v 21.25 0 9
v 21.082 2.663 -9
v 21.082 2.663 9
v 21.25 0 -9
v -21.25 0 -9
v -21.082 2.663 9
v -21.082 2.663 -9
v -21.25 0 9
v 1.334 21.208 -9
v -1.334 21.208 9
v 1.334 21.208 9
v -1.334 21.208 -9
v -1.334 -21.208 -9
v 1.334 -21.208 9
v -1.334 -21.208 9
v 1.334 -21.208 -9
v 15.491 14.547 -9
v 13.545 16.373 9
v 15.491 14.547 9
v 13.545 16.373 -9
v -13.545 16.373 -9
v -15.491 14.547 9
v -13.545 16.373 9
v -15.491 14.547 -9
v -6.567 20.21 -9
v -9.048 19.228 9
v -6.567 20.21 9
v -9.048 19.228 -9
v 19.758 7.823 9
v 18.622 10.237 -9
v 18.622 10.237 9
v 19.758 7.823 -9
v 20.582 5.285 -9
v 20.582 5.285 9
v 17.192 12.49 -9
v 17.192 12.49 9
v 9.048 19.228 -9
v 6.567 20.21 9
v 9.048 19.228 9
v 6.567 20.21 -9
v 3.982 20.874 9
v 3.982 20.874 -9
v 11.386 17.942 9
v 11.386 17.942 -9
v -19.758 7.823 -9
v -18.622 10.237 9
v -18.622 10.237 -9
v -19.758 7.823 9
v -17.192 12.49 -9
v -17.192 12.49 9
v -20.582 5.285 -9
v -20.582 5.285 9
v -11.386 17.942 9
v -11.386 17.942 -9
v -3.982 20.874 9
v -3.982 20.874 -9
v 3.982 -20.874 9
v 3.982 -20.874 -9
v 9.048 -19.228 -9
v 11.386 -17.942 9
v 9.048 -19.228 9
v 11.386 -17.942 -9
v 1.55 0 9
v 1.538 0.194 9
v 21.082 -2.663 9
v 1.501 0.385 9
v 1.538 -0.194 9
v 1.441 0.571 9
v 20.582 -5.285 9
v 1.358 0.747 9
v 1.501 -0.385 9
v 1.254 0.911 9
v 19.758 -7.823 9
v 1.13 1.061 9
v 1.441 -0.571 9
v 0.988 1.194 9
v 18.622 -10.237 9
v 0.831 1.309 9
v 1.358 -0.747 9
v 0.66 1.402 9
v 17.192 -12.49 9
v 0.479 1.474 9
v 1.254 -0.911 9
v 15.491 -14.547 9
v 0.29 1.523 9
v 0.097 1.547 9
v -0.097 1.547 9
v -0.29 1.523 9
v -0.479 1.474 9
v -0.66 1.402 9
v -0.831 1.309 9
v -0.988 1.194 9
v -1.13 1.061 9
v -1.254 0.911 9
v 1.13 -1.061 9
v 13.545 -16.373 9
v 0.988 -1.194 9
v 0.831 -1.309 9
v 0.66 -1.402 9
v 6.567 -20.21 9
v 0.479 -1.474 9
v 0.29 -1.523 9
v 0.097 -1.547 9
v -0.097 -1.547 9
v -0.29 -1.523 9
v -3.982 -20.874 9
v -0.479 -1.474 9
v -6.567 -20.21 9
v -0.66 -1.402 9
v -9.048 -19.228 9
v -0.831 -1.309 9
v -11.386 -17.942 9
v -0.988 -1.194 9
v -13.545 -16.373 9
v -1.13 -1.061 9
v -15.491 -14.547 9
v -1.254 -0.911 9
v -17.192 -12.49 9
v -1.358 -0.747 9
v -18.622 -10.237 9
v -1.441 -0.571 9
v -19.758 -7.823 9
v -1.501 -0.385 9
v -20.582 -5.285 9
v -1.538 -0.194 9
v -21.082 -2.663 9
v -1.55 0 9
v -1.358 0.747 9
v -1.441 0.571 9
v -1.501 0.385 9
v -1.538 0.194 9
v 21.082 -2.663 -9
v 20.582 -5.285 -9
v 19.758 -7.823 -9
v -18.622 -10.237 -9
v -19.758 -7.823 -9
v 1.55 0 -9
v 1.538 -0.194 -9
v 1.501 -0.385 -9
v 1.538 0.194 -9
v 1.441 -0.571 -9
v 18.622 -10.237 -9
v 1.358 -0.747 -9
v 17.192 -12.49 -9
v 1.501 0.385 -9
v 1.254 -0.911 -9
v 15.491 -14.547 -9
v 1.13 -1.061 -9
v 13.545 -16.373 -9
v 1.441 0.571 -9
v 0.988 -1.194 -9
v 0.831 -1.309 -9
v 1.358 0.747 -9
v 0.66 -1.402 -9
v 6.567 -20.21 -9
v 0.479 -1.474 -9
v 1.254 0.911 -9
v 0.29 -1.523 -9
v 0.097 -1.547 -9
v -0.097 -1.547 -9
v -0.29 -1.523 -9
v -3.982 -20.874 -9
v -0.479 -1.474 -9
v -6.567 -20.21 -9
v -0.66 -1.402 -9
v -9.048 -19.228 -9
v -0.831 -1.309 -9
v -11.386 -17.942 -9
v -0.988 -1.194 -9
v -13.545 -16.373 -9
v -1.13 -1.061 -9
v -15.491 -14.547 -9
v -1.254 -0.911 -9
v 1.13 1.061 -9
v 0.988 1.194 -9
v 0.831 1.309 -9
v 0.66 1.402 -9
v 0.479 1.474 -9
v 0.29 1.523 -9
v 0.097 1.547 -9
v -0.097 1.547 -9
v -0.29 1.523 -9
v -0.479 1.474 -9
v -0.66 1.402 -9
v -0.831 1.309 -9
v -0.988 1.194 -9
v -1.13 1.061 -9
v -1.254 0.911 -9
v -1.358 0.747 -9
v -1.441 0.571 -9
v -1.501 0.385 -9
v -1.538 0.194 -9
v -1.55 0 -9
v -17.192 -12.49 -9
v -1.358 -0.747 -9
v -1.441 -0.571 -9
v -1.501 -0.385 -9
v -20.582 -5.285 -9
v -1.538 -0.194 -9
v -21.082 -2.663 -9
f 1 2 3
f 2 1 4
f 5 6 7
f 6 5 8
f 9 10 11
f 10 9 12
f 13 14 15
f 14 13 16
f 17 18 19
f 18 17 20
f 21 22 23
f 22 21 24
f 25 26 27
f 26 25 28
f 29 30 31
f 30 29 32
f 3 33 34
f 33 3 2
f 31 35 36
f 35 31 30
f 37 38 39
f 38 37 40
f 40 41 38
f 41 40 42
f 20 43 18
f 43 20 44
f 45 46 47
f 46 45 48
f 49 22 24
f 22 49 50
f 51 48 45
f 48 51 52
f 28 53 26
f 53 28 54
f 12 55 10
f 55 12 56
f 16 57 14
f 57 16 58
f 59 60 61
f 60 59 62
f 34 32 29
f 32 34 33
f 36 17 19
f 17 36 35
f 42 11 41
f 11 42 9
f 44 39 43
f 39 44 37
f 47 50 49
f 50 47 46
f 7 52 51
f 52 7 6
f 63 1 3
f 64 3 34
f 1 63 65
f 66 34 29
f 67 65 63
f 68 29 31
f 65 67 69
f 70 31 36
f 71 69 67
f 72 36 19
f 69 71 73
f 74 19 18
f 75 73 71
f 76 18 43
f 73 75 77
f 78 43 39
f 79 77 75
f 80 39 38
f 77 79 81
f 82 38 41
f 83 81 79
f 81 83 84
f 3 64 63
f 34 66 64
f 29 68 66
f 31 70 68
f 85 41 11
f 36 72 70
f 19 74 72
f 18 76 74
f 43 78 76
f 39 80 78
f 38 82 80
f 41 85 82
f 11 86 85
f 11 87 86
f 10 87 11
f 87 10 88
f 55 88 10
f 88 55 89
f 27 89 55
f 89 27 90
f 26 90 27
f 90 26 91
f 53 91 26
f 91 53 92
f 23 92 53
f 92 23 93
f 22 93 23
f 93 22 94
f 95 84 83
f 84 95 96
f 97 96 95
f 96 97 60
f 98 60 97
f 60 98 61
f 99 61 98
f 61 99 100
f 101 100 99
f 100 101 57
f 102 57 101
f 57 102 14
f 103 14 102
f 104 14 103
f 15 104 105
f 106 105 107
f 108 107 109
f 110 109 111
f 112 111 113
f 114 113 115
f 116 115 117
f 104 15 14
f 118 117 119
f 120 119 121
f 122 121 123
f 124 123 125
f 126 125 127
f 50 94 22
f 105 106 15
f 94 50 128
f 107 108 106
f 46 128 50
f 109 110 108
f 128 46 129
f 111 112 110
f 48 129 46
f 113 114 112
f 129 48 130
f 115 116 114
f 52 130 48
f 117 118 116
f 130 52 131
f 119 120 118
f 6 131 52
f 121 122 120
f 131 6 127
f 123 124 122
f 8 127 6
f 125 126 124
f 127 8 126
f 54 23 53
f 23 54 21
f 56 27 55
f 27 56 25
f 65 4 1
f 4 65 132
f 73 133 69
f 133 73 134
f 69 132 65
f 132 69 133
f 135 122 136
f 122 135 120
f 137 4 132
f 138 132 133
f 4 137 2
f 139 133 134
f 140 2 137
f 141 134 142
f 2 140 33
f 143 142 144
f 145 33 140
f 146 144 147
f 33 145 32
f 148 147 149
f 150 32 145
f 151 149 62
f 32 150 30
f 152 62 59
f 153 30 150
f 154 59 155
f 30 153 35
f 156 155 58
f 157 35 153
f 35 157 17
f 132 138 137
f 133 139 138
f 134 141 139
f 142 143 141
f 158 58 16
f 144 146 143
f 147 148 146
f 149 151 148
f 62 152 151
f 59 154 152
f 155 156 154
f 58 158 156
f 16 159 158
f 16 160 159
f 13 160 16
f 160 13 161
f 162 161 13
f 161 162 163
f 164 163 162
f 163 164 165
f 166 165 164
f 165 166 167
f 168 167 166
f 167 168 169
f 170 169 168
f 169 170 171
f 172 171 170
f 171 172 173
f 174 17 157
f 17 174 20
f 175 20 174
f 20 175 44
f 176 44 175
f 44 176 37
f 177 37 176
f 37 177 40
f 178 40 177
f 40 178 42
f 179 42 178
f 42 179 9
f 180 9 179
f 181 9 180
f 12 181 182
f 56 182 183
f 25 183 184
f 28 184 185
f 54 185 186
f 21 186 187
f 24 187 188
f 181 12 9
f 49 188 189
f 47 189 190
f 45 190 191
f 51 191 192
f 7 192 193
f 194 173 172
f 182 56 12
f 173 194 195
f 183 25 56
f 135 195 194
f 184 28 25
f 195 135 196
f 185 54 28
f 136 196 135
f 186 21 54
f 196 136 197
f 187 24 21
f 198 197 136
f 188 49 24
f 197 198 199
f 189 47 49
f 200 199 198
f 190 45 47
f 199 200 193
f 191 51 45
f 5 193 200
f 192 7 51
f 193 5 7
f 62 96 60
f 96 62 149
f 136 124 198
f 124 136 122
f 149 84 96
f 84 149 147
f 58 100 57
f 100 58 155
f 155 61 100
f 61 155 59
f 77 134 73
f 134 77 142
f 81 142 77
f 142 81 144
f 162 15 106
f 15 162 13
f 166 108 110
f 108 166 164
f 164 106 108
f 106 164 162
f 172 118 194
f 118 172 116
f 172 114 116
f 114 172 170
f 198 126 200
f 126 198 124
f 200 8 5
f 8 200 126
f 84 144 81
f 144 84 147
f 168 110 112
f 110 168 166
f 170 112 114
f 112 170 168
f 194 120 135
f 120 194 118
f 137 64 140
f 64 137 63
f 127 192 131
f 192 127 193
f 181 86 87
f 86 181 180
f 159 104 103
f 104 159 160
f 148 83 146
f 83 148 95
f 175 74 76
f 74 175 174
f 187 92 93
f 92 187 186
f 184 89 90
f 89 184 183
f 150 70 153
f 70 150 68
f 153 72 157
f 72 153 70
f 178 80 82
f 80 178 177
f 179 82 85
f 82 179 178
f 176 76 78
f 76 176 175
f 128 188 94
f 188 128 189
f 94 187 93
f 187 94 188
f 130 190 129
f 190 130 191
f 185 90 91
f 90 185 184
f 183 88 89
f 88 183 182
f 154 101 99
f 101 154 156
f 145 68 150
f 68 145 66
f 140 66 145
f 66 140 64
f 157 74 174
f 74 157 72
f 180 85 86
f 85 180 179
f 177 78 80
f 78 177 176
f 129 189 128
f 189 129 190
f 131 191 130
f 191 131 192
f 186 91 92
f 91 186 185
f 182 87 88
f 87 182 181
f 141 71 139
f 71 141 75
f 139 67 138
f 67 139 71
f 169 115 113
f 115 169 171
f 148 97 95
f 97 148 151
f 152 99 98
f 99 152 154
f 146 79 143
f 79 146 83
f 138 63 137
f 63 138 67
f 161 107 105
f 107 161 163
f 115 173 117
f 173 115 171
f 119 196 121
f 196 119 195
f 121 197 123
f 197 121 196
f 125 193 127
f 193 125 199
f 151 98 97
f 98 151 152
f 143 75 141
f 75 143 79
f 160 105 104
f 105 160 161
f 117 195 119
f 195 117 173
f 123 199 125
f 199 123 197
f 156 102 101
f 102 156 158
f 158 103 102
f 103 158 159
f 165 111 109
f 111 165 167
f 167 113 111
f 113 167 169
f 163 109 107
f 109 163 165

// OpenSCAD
$fn = 50;


difference() {
	union() {
		translate(v = [0, 0, -9.0000000000]) {
			cylinder(h = 18, r = 21.2500000000);
		}
	}
	union() {
		translate(v = [0, 0, -100.0000000000]) {
			cylinder(h = 200, r = 1.5500000000);
		}
	}
}
